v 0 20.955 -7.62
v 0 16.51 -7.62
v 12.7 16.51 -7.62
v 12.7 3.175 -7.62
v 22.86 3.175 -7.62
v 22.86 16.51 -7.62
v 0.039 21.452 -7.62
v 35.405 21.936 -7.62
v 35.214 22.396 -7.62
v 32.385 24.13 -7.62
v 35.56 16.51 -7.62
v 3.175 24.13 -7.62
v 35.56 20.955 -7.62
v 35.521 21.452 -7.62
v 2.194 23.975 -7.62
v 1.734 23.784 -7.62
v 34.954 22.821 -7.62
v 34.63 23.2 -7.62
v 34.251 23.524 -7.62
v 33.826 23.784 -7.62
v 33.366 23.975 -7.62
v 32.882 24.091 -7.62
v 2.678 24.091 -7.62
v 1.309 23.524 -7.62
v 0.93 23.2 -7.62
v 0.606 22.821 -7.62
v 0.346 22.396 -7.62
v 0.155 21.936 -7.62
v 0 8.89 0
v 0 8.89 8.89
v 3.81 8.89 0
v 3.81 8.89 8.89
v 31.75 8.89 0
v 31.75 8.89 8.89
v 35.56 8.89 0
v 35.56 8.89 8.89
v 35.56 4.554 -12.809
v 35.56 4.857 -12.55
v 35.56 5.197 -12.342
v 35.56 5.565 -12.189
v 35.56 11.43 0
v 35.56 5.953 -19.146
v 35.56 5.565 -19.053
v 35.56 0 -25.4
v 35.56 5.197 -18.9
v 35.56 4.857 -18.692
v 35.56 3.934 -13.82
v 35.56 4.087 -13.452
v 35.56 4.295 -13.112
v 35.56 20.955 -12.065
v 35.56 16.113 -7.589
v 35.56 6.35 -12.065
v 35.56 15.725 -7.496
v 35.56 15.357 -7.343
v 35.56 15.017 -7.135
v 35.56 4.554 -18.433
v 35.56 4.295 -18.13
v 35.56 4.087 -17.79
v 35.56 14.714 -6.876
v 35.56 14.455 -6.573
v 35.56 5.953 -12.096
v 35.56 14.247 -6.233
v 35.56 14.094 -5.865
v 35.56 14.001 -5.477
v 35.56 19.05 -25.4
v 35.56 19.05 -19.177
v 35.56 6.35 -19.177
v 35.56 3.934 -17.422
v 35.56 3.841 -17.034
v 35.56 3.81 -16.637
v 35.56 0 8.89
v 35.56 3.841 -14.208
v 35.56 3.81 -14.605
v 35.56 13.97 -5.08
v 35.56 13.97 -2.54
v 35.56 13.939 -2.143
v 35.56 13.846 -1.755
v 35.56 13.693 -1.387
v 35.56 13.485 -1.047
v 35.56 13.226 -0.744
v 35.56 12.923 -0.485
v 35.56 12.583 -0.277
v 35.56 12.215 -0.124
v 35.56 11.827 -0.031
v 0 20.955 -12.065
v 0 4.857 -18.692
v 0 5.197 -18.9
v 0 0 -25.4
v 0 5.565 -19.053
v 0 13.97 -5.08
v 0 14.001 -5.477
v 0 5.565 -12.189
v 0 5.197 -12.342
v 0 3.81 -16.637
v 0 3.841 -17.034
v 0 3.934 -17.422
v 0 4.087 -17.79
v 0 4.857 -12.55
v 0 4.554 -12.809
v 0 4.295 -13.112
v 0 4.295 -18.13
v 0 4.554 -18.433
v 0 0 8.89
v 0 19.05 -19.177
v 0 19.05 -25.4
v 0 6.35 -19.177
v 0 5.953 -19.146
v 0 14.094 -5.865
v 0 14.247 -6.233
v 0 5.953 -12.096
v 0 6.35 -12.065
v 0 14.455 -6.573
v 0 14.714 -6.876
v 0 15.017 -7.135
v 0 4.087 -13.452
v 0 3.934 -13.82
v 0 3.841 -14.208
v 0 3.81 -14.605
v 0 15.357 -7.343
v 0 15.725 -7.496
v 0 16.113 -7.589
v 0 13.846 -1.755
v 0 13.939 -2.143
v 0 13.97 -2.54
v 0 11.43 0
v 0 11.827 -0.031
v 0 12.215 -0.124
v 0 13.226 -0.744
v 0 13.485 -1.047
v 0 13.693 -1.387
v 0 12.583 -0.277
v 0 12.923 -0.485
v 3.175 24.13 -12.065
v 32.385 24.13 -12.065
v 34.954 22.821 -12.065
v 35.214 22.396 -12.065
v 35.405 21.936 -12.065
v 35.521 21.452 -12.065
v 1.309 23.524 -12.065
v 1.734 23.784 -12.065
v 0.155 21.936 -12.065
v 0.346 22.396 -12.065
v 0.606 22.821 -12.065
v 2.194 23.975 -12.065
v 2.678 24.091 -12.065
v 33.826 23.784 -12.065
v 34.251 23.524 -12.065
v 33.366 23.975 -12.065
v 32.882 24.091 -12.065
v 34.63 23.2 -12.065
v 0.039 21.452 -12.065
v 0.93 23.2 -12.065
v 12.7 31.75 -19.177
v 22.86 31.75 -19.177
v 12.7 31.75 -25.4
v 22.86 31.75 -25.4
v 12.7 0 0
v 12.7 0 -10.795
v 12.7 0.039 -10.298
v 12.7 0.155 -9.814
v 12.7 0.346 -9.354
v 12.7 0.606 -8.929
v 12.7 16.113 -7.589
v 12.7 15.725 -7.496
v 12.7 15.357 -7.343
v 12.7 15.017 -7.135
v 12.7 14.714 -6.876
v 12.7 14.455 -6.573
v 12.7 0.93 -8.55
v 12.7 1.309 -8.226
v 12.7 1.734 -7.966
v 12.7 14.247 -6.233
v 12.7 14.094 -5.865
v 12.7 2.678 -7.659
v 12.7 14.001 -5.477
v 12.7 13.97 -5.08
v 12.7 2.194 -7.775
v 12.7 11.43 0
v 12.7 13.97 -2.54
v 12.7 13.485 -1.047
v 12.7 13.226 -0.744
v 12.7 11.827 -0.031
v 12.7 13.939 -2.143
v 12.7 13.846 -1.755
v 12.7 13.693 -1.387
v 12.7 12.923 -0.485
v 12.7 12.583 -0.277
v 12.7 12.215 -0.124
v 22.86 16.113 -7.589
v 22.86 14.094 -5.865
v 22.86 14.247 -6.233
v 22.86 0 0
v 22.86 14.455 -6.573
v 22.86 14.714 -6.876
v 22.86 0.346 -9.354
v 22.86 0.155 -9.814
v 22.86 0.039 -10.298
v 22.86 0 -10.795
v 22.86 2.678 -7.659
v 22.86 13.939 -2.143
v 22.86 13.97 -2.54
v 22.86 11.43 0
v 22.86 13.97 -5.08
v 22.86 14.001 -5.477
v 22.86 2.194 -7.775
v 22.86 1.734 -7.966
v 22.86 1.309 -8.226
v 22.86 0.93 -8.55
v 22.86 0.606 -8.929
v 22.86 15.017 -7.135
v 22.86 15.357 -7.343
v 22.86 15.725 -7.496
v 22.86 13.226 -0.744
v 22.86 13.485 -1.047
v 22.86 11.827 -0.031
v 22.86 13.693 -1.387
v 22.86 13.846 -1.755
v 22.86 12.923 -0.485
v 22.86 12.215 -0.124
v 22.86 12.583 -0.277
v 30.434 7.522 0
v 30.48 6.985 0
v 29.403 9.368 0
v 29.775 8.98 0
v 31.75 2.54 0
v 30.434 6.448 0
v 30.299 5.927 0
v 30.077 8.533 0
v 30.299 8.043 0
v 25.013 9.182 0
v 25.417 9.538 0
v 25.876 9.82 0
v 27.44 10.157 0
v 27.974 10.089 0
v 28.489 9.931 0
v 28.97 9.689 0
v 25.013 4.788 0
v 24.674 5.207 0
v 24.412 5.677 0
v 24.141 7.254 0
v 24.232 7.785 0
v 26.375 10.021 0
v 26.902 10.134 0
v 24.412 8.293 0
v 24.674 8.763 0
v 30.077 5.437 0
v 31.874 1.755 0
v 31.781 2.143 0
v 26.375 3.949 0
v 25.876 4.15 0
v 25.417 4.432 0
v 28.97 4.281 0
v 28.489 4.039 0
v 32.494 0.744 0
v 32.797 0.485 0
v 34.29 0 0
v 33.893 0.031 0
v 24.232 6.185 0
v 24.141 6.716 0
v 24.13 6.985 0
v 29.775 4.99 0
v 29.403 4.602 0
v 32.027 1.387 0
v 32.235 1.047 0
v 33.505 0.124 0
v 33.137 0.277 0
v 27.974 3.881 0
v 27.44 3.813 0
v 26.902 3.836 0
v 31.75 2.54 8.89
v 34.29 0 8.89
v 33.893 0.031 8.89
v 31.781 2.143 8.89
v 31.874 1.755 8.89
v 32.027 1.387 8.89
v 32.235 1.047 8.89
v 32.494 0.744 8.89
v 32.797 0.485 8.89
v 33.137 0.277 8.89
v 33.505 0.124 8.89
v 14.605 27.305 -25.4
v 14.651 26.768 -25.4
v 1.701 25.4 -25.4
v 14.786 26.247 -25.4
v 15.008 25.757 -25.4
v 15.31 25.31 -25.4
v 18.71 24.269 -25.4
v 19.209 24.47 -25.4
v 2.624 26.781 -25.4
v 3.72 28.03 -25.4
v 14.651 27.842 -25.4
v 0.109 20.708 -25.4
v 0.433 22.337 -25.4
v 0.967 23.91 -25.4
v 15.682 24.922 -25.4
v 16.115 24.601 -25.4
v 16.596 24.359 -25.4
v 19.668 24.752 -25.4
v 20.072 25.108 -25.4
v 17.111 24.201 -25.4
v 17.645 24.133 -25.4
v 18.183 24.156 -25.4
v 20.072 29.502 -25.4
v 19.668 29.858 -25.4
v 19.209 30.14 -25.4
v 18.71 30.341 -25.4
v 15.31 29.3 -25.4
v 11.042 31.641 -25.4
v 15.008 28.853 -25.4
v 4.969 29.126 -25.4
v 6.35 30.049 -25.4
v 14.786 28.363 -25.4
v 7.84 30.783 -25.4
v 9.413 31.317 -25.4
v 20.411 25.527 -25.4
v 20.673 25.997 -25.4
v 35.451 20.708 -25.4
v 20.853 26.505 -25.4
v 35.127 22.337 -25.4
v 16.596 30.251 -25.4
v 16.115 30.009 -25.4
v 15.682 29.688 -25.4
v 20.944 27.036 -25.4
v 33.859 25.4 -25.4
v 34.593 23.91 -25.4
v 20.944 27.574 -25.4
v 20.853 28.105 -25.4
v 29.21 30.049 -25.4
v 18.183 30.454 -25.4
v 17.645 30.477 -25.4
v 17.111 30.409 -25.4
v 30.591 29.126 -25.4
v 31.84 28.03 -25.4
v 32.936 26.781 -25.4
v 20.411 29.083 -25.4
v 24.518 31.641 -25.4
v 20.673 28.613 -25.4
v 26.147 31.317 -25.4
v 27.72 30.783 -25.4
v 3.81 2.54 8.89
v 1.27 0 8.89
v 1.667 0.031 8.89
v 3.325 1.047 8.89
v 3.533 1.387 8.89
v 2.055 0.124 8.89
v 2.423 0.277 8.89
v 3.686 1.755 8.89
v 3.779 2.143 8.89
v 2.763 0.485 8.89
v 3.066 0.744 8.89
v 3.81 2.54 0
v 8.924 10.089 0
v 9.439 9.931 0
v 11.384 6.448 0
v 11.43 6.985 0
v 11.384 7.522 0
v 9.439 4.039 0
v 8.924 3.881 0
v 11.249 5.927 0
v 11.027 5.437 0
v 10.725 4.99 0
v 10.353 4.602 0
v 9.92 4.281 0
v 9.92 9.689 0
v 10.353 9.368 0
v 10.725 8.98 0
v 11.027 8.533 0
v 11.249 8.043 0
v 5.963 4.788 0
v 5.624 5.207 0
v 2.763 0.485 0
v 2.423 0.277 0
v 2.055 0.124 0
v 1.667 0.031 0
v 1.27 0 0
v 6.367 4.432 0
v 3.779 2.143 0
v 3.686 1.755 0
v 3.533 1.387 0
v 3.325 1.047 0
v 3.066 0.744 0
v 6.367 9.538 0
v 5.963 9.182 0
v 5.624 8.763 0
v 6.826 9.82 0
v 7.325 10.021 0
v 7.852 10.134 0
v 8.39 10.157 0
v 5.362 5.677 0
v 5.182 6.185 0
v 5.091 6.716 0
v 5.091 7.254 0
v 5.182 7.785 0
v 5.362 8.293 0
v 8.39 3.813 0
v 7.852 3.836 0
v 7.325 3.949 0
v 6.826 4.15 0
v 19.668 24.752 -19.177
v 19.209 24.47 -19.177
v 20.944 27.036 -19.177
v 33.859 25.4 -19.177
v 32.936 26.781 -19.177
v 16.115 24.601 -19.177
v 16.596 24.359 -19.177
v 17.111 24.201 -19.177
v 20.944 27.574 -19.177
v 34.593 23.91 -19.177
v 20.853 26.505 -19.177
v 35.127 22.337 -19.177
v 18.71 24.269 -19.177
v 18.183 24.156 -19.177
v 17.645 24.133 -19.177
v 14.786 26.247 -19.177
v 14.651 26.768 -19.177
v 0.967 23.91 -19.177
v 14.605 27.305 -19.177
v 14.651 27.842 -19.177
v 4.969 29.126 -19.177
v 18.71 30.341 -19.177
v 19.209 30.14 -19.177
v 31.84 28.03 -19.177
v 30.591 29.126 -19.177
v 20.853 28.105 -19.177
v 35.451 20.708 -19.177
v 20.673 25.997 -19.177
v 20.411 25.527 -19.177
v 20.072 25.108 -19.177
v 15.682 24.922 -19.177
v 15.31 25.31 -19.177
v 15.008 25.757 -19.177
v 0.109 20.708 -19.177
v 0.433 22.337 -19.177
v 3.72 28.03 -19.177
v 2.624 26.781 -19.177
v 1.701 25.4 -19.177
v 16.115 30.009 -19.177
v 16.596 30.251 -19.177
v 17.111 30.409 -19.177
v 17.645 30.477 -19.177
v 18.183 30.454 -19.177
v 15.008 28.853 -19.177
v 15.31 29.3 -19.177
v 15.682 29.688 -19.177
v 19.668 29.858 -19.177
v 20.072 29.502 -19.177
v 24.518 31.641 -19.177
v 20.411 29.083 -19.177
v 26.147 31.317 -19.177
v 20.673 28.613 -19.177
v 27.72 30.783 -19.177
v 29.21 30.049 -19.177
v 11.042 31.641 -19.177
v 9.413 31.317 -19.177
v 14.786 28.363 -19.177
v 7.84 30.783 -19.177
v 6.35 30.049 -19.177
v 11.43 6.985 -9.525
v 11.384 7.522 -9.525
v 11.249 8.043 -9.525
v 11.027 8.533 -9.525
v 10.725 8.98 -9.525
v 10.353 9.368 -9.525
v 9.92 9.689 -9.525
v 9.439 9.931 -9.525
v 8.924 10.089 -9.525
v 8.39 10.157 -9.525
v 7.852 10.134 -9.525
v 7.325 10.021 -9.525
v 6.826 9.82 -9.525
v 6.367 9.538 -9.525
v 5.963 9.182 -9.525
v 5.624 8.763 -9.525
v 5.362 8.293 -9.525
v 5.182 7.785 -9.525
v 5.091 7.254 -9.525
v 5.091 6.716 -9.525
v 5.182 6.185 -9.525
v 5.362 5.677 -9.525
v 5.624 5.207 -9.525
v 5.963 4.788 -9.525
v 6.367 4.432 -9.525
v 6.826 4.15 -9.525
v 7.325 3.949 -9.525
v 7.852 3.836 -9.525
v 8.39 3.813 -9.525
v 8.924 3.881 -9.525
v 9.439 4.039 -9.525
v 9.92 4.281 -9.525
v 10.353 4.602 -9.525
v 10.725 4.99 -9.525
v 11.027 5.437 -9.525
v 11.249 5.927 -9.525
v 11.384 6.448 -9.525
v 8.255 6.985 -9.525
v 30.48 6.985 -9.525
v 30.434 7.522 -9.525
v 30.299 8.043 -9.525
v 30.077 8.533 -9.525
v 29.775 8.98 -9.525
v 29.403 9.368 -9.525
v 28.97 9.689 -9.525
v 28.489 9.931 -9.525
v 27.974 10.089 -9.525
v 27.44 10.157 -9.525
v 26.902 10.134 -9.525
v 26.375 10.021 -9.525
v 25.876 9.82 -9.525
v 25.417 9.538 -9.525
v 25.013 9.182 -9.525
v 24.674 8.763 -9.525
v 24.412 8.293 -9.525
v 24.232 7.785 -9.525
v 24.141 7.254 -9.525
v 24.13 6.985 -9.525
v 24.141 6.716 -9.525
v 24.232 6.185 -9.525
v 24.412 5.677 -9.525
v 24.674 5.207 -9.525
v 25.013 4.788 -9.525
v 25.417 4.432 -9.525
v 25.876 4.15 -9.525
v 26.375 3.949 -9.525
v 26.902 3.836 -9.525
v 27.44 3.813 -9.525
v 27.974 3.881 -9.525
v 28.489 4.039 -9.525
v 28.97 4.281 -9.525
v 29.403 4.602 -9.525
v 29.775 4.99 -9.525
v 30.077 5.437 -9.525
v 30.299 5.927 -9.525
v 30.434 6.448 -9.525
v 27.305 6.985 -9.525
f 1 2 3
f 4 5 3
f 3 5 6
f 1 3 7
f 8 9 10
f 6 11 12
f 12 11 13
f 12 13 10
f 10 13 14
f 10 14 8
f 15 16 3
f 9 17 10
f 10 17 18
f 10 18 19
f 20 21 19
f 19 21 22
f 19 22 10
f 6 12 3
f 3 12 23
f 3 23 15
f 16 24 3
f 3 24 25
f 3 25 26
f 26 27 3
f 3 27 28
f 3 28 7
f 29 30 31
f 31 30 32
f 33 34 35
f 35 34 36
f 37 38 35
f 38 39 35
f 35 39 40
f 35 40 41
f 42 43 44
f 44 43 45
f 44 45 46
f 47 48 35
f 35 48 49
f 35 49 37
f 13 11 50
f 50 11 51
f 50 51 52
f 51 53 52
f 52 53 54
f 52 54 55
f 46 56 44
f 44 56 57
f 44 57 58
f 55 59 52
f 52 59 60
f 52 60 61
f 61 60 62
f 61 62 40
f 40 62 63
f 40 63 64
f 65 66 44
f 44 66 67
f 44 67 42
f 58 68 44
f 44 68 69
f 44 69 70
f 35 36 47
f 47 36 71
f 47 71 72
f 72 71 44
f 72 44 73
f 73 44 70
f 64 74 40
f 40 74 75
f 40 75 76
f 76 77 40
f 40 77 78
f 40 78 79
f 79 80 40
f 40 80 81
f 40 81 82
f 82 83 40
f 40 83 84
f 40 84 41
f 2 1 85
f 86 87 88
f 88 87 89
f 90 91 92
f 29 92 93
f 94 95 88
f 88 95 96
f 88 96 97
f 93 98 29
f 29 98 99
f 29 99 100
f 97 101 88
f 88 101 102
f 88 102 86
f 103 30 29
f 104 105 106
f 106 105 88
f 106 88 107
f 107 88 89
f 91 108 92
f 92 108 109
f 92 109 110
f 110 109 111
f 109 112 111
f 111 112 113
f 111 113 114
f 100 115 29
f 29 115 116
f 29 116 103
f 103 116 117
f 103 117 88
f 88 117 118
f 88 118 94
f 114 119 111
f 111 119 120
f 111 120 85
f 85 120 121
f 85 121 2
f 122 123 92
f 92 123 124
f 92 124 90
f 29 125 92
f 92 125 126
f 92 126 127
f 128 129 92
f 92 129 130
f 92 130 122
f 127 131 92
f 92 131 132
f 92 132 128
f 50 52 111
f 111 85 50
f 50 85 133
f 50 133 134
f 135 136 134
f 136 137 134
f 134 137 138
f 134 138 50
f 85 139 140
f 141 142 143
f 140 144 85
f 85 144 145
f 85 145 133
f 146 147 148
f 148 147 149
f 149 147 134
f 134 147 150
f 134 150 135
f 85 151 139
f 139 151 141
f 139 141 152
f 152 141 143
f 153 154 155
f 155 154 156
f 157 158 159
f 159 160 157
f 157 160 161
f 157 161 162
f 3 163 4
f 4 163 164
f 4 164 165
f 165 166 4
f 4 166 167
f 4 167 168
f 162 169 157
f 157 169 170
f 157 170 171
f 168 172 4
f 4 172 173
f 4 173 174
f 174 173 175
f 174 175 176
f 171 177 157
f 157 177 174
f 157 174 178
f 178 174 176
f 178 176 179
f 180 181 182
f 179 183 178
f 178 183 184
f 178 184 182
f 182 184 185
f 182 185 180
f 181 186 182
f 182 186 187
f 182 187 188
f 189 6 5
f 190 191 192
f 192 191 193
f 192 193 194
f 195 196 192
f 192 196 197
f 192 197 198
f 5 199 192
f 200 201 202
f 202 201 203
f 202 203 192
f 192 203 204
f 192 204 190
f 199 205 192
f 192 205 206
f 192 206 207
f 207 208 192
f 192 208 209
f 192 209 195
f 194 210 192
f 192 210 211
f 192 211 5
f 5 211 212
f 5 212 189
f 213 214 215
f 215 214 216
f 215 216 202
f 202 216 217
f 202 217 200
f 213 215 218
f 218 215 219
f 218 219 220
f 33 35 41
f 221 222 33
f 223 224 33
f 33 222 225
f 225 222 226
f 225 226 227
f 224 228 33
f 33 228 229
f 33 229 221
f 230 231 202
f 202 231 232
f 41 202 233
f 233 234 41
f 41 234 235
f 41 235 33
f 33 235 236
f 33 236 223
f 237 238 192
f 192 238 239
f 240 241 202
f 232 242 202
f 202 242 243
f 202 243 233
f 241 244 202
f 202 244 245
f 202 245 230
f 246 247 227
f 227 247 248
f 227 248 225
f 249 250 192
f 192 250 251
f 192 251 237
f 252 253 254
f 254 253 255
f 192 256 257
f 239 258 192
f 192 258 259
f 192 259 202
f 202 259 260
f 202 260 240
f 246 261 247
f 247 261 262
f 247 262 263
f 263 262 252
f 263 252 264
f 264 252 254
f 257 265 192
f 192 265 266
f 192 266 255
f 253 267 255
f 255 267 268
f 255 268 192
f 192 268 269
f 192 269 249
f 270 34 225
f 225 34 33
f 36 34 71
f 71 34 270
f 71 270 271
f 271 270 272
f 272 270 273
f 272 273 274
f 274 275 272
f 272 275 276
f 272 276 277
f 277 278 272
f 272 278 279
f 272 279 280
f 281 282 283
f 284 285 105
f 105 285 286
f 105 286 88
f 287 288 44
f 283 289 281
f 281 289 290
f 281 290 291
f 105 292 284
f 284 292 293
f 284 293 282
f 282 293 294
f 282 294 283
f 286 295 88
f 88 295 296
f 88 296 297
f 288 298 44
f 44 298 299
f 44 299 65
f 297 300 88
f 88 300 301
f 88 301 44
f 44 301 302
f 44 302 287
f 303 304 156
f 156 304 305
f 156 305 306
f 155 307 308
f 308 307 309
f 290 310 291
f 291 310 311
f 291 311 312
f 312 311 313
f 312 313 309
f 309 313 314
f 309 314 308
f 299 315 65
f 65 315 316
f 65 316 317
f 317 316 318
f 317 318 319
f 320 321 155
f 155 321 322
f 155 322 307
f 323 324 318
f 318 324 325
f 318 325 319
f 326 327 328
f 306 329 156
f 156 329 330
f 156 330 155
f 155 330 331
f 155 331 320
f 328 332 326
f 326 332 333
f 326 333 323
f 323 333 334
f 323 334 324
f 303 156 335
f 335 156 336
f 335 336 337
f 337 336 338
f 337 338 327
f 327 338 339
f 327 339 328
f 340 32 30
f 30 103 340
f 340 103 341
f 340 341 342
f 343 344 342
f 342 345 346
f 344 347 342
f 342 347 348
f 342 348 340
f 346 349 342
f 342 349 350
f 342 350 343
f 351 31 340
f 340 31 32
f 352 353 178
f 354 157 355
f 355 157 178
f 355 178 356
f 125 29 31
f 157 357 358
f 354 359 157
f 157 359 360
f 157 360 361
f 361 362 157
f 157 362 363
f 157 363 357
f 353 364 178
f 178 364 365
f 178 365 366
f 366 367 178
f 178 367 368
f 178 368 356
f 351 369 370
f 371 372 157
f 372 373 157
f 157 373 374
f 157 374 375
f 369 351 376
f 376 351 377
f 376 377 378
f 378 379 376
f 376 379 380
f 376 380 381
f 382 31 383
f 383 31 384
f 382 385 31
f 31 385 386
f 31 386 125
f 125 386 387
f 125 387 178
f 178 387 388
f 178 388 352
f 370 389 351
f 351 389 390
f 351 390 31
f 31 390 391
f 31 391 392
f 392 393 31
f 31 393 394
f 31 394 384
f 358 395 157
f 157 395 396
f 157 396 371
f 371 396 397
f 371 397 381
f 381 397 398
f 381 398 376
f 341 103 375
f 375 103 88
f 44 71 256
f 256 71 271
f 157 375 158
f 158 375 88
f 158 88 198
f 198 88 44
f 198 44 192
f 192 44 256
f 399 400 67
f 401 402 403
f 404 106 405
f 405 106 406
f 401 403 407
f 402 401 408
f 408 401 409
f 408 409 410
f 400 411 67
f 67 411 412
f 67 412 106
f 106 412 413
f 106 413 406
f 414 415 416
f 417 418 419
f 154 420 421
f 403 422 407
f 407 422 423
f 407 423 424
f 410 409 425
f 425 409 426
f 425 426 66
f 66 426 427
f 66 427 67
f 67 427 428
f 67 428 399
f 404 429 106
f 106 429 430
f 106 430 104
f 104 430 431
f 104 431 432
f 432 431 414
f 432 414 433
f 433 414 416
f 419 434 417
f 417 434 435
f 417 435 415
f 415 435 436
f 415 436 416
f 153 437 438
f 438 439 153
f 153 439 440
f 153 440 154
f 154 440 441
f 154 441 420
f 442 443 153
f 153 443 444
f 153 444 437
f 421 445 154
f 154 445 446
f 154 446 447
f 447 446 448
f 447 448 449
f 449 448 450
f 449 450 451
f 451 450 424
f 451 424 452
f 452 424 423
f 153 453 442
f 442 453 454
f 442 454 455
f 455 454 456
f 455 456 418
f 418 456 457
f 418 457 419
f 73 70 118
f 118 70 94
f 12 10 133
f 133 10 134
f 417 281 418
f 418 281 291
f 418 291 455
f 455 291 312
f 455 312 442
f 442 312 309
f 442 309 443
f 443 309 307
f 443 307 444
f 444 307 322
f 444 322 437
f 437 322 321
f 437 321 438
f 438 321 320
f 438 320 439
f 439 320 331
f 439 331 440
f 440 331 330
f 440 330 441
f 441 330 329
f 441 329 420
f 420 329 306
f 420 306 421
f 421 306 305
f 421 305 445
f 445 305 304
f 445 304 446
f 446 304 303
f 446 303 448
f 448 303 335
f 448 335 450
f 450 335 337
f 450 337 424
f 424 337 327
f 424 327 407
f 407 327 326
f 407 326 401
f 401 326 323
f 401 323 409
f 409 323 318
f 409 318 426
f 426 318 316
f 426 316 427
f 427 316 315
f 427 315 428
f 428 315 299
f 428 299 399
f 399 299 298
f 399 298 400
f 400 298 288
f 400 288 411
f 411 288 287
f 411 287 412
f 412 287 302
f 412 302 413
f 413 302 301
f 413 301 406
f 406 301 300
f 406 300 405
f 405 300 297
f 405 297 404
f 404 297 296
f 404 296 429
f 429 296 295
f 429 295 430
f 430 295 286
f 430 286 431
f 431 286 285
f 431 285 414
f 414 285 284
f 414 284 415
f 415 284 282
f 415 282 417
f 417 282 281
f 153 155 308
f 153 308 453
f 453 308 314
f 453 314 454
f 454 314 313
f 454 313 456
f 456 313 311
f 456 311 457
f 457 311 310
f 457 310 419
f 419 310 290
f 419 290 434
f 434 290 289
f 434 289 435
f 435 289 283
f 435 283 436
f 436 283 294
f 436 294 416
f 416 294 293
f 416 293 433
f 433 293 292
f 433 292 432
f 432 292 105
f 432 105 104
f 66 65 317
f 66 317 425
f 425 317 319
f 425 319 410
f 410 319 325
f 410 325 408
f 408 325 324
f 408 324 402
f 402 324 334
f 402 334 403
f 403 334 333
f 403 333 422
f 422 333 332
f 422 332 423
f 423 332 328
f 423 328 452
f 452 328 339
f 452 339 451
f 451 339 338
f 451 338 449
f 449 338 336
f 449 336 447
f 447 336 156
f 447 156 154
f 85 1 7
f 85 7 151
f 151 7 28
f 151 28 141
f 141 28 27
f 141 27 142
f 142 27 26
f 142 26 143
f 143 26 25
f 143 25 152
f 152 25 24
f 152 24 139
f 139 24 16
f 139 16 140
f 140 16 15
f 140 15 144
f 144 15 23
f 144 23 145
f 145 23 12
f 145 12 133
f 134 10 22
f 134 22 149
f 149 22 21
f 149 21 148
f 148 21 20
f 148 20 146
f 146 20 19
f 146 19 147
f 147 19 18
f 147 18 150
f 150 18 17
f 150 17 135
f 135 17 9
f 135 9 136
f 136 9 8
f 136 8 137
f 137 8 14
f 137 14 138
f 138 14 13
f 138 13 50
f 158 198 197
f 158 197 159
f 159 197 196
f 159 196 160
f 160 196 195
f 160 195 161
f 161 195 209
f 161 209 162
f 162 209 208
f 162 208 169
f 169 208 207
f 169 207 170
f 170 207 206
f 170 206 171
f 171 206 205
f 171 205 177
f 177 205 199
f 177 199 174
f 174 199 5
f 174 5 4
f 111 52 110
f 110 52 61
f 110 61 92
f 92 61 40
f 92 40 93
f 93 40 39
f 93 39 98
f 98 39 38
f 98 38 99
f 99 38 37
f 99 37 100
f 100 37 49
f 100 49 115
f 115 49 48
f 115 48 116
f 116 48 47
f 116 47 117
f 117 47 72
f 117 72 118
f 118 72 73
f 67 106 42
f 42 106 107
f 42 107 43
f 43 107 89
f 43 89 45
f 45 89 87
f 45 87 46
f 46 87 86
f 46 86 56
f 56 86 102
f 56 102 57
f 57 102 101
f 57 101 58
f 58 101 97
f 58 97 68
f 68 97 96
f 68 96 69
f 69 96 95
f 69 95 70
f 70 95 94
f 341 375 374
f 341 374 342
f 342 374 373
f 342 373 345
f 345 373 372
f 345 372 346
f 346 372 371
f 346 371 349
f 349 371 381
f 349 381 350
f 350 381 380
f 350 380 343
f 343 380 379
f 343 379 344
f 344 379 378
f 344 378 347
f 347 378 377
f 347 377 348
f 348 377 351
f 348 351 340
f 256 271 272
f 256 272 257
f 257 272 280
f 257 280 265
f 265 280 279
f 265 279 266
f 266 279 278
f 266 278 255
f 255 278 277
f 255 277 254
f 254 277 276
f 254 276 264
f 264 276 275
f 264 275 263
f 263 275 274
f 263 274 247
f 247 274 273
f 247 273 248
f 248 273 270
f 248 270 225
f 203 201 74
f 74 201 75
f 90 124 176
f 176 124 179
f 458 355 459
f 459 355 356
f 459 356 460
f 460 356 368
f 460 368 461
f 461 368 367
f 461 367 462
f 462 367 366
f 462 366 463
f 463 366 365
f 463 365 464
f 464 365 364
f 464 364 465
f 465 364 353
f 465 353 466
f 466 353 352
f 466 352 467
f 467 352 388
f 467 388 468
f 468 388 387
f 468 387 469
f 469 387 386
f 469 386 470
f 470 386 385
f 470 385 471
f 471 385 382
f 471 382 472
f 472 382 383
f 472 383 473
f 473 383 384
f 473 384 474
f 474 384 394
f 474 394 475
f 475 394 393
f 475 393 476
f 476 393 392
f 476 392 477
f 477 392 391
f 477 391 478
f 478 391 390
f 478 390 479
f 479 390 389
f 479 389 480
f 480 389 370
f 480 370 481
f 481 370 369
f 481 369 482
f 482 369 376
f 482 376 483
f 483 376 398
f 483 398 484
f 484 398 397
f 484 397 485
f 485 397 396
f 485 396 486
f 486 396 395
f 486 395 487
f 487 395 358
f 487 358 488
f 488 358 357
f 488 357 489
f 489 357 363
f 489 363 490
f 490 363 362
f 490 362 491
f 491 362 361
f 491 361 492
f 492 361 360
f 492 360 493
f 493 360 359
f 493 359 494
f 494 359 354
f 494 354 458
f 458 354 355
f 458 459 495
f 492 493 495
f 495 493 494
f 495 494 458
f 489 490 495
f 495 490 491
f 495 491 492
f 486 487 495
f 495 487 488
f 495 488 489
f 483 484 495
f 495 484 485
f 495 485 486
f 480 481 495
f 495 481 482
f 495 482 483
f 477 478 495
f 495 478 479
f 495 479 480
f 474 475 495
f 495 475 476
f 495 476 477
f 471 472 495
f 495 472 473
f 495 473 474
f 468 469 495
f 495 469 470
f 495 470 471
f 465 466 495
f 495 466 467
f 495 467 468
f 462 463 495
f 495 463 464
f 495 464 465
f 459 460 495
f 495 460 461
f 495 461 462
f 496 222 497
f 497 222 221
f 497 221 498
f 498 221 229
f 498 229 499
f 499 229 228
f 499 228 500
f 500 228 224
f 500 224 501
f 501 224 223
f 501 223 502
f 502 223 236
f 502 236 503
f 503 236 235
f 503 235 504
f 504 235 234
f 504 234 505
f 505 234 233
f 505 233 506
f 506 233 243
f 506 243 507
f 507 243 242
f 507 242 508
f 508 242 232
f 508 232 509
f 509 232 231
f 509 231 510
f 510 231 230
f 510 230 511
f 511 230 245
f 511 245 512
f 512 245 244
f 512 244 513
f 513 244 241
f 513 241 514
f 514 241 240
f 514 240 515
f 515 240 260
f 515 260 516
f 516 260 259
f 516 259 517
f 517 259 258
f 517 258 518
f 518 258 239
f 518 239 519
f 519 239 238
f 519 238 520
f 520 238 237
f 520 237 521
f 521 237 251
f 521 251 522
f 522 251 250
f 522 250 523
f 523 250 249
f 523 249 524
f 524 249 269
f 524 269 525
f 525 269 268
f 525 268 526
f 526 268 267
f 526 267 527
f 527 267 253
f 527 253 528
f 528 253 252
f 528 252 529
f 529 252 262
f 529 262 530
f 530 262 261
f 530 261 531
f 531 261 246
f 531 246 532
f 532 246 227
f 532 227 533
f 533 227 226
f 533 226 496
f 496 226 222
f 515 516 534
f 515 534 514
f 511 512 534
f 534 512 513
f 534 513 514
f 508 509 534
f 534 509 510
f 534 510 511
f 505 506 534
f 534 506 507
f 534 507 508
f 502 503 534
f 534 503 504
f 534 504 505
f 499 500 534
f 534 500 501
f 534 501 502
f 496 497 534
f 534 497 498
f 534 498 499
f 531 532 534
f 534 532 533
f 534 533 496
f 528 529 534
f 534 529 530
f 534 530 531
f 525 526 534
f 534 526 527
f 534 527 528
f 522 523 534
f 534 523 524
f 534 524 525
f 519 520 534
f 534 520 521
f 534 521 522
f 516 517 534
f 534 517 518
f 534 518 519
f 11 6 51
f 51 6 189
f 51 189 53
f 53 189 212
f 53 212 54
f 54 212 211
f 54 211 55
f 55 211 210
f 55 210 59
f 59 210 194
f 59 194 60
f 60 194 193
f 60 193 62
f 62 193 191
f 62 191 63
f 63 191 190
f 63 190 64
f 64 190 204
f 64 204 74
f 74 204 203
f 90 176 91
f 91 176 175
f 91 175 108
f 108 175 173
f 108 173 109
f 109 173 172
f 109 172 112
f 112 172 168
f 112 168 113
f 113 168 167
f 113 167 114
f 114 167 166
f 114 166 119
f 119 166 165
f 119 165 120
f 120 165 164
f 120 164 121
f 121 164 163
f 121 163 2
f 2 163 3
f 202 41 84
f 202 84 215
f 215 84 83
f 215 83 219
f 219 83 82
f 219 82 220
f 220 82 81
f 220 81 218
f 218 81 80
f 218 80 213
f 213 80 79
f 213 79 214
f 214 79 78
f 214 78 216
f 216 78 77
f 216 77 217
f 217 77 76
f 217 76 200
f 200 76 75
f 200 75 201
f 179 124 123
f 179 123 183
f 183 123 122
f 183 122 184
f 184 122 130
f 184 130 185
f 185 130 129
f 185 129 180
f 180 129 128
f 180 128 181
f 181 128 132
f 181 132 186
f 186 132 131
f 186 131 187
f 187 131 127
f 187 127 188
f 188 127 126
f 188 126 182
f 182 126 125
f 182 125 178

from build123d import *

# Parameters (mm, degrees)
BOSS_EXTRUDE1_DEPTH = 8.89
SKETCH2_W           = 35.56
SKETCH2_H           = 17.78
BOSS_EXTRUDE2_DEPTH = 22.86
SKETCH4_W           = 35.56
SKETCH4_H           = 7.112
CUT_EXTRUDE2_DEPTH  = 27.94
SKETCH5_W           = 35.56
SKETCH5_H           = 4.445
CUT_EXTRUDE3_DEPTH  = 7.62
SKETCH6_R           = 3.175
CUT_EXTRUDE4_DEPTH  = 6.35
FILLET1_R           = 12.7
FILLET2_R           = 3.175
FILLET3_R           = 3.175
FILLET6_R           = 2.54
BOSS_EXTRUDE5_DEPTH = 5.08
SKETCH14_R          = 3.175
CUT_EXTRUDE8_DEPTH  = 9.525
FILLET7_R           = 2.54


with BuildPart() as part:
    # Sketch1 → Boss-Extrude1 (new body)
    with BuildSketch(Plane(origin=(0, 0, 0), x_dir=(1, 0, 0), z_dir=(0, 1, 0))):
        Polygon((0, 25.4), (0, 0), (0, -8.89), (3.81, -8.89), (3.81, 0), (12.7, 0), (12.7, 7.62), (22.86, 7.62), (22.86, 0), (31.75, 0), (31.75, -8.89), (35.56, -8.89), (35.56, 0), (35.56, 25.4), align=None)
    extrude(amount=BOSS_EXTRUDE1_DEPTH)

    # Sketch2 → Boss-Extrude2 (add)
    with BuildSketch(Plane(origin=(0, 8.89, 0), x_dir=(1, 0, 0), z_dir=(0, 1, 0))):
        with Locations((17.78, 16.51)):
            Rectangle(SKETCH2_W, SKETCH2_H)
    extrude(amount=BOSS_EXTRUDE2_DEPTH)

    # Sketch4 → Cut-Extrude2 (cut)
    with BuildSketch(Plane(origin=(0, 31.75, 0), x_dir=(1, 0, 0), z_dir=(0, 1, 0))):
        with Locations((17.78, 15.621)):
            Rectangle(SKETCH4_W, SKETCH4_H)
    extrude(amount=-CUT_EXTRUDE2_DEPTH, mode=Mode.SUBTRACT)

    # Sketch5 → Cut-Extrude3 (cut)
    with BuildSketch(Plane(origin=(0, 31.75, 0), x_dir=(1, 0, 0), z_dir=(0, 1, 0))):
        with Locations((17.78, 9.8425)):
            Rectangle(SKETCH5_W, SKETCH5_H)
    extrude(amount=-CUT_EXTRUDE3_DEPTH, mode=Mode.SUBTRACT)

    # Sketch6 → Cut-Extrude4 (cut)
    with BuildSketch(Plane(origin=(0, 0, -25.4), x_dir=(-1, 0, 0), z_dir=(0, 0, -1))):
        with Locations((-17.78, 27.305)):
            Circle(SKETCH6_R)
    extrude(amount=-CUT_EXTRUDE4_DEPTH, mode=Mode.SUBTRACT)

    # Fillet1
    fillet1_edges = [part.edges().sort_by_distance(p)[0] for p in [
        (0, 31.75, -22.2885),
        (35.56, 31.75, -22.2885),
    ]]
    fillet(fillet1_edges, radius=FILLET1_R)

    # Fillet2
    fillet2_edges = [part.edges().sort_by_distance(p)[0] for p in [
        (0, 24.13, -9.8425),
        (35.56, 24.13, -9.8425),
    ]]
    fillet(fillet2_edges, radius=FILLET2_R)

    # Fillet3
    fillet3_edges = [part.edges().sort_by_distance(p)[0] for p in [
        (17.78, 0, -7.62),
    ]]
    fillet(fillet3_edges, radius=FILLET3_R)

    # Fillet6
    fillet6_edges = [part.edges().sort_by_distance(p)[0] for p in [
        (3.81, 0, 4.445),
        (31.75, 0, 4.445),
        (17.78, 3.81, -12.065),
        (17.78, 3.81, -19.177),
    ]]
    fillet(fillet6_edges, radius=FILLET6_R)

    # Sketch13 → Boss-Extrude5 (add)
    with BuildSketch(Plane(origin=(0, 8.89, 0), x_dir=(1, 0, 0), z_dir=(0, 1, 0))):
        Polygon((3.81, 0), (0, 0), (0, 7.62), (12.7, 7.62), (12.7, 0), align=None)
        Polygon((35.56, 7.62), (22.86, 7.62), (22.86, 0), (31.75, 0), (35.56, 0), align=None)
    extrude(amount=BOSS_EXTRUDE5_DEPTH)

    # Sketch14 → Cut-Extrude8 (cut)
    with BuildSketch(Plane.XY):
        with Locations((8.255, 6.985)):
            Circle(SKETCH14_R)
        with Locations((27.305, 6.985)):
            Circle(SKETCH14_R)
    extrude(amount=-CUT_EXTRUDE8_DEPTH, mode=Mode.SUBTRACT)

    # Fillet7
    fillet7_edges = [part.edges().sort_by_distance(p)[0] for p in [
        (29.21, 13.97, -7.62),
        (6.35, 13.97, -7.62),
        (29.21, 13.97, 0),
        (6.35, 13.97, 0),
    ]]
    fillet(fillet7_edges, radius=FILLET7_R)


solid = part.part
